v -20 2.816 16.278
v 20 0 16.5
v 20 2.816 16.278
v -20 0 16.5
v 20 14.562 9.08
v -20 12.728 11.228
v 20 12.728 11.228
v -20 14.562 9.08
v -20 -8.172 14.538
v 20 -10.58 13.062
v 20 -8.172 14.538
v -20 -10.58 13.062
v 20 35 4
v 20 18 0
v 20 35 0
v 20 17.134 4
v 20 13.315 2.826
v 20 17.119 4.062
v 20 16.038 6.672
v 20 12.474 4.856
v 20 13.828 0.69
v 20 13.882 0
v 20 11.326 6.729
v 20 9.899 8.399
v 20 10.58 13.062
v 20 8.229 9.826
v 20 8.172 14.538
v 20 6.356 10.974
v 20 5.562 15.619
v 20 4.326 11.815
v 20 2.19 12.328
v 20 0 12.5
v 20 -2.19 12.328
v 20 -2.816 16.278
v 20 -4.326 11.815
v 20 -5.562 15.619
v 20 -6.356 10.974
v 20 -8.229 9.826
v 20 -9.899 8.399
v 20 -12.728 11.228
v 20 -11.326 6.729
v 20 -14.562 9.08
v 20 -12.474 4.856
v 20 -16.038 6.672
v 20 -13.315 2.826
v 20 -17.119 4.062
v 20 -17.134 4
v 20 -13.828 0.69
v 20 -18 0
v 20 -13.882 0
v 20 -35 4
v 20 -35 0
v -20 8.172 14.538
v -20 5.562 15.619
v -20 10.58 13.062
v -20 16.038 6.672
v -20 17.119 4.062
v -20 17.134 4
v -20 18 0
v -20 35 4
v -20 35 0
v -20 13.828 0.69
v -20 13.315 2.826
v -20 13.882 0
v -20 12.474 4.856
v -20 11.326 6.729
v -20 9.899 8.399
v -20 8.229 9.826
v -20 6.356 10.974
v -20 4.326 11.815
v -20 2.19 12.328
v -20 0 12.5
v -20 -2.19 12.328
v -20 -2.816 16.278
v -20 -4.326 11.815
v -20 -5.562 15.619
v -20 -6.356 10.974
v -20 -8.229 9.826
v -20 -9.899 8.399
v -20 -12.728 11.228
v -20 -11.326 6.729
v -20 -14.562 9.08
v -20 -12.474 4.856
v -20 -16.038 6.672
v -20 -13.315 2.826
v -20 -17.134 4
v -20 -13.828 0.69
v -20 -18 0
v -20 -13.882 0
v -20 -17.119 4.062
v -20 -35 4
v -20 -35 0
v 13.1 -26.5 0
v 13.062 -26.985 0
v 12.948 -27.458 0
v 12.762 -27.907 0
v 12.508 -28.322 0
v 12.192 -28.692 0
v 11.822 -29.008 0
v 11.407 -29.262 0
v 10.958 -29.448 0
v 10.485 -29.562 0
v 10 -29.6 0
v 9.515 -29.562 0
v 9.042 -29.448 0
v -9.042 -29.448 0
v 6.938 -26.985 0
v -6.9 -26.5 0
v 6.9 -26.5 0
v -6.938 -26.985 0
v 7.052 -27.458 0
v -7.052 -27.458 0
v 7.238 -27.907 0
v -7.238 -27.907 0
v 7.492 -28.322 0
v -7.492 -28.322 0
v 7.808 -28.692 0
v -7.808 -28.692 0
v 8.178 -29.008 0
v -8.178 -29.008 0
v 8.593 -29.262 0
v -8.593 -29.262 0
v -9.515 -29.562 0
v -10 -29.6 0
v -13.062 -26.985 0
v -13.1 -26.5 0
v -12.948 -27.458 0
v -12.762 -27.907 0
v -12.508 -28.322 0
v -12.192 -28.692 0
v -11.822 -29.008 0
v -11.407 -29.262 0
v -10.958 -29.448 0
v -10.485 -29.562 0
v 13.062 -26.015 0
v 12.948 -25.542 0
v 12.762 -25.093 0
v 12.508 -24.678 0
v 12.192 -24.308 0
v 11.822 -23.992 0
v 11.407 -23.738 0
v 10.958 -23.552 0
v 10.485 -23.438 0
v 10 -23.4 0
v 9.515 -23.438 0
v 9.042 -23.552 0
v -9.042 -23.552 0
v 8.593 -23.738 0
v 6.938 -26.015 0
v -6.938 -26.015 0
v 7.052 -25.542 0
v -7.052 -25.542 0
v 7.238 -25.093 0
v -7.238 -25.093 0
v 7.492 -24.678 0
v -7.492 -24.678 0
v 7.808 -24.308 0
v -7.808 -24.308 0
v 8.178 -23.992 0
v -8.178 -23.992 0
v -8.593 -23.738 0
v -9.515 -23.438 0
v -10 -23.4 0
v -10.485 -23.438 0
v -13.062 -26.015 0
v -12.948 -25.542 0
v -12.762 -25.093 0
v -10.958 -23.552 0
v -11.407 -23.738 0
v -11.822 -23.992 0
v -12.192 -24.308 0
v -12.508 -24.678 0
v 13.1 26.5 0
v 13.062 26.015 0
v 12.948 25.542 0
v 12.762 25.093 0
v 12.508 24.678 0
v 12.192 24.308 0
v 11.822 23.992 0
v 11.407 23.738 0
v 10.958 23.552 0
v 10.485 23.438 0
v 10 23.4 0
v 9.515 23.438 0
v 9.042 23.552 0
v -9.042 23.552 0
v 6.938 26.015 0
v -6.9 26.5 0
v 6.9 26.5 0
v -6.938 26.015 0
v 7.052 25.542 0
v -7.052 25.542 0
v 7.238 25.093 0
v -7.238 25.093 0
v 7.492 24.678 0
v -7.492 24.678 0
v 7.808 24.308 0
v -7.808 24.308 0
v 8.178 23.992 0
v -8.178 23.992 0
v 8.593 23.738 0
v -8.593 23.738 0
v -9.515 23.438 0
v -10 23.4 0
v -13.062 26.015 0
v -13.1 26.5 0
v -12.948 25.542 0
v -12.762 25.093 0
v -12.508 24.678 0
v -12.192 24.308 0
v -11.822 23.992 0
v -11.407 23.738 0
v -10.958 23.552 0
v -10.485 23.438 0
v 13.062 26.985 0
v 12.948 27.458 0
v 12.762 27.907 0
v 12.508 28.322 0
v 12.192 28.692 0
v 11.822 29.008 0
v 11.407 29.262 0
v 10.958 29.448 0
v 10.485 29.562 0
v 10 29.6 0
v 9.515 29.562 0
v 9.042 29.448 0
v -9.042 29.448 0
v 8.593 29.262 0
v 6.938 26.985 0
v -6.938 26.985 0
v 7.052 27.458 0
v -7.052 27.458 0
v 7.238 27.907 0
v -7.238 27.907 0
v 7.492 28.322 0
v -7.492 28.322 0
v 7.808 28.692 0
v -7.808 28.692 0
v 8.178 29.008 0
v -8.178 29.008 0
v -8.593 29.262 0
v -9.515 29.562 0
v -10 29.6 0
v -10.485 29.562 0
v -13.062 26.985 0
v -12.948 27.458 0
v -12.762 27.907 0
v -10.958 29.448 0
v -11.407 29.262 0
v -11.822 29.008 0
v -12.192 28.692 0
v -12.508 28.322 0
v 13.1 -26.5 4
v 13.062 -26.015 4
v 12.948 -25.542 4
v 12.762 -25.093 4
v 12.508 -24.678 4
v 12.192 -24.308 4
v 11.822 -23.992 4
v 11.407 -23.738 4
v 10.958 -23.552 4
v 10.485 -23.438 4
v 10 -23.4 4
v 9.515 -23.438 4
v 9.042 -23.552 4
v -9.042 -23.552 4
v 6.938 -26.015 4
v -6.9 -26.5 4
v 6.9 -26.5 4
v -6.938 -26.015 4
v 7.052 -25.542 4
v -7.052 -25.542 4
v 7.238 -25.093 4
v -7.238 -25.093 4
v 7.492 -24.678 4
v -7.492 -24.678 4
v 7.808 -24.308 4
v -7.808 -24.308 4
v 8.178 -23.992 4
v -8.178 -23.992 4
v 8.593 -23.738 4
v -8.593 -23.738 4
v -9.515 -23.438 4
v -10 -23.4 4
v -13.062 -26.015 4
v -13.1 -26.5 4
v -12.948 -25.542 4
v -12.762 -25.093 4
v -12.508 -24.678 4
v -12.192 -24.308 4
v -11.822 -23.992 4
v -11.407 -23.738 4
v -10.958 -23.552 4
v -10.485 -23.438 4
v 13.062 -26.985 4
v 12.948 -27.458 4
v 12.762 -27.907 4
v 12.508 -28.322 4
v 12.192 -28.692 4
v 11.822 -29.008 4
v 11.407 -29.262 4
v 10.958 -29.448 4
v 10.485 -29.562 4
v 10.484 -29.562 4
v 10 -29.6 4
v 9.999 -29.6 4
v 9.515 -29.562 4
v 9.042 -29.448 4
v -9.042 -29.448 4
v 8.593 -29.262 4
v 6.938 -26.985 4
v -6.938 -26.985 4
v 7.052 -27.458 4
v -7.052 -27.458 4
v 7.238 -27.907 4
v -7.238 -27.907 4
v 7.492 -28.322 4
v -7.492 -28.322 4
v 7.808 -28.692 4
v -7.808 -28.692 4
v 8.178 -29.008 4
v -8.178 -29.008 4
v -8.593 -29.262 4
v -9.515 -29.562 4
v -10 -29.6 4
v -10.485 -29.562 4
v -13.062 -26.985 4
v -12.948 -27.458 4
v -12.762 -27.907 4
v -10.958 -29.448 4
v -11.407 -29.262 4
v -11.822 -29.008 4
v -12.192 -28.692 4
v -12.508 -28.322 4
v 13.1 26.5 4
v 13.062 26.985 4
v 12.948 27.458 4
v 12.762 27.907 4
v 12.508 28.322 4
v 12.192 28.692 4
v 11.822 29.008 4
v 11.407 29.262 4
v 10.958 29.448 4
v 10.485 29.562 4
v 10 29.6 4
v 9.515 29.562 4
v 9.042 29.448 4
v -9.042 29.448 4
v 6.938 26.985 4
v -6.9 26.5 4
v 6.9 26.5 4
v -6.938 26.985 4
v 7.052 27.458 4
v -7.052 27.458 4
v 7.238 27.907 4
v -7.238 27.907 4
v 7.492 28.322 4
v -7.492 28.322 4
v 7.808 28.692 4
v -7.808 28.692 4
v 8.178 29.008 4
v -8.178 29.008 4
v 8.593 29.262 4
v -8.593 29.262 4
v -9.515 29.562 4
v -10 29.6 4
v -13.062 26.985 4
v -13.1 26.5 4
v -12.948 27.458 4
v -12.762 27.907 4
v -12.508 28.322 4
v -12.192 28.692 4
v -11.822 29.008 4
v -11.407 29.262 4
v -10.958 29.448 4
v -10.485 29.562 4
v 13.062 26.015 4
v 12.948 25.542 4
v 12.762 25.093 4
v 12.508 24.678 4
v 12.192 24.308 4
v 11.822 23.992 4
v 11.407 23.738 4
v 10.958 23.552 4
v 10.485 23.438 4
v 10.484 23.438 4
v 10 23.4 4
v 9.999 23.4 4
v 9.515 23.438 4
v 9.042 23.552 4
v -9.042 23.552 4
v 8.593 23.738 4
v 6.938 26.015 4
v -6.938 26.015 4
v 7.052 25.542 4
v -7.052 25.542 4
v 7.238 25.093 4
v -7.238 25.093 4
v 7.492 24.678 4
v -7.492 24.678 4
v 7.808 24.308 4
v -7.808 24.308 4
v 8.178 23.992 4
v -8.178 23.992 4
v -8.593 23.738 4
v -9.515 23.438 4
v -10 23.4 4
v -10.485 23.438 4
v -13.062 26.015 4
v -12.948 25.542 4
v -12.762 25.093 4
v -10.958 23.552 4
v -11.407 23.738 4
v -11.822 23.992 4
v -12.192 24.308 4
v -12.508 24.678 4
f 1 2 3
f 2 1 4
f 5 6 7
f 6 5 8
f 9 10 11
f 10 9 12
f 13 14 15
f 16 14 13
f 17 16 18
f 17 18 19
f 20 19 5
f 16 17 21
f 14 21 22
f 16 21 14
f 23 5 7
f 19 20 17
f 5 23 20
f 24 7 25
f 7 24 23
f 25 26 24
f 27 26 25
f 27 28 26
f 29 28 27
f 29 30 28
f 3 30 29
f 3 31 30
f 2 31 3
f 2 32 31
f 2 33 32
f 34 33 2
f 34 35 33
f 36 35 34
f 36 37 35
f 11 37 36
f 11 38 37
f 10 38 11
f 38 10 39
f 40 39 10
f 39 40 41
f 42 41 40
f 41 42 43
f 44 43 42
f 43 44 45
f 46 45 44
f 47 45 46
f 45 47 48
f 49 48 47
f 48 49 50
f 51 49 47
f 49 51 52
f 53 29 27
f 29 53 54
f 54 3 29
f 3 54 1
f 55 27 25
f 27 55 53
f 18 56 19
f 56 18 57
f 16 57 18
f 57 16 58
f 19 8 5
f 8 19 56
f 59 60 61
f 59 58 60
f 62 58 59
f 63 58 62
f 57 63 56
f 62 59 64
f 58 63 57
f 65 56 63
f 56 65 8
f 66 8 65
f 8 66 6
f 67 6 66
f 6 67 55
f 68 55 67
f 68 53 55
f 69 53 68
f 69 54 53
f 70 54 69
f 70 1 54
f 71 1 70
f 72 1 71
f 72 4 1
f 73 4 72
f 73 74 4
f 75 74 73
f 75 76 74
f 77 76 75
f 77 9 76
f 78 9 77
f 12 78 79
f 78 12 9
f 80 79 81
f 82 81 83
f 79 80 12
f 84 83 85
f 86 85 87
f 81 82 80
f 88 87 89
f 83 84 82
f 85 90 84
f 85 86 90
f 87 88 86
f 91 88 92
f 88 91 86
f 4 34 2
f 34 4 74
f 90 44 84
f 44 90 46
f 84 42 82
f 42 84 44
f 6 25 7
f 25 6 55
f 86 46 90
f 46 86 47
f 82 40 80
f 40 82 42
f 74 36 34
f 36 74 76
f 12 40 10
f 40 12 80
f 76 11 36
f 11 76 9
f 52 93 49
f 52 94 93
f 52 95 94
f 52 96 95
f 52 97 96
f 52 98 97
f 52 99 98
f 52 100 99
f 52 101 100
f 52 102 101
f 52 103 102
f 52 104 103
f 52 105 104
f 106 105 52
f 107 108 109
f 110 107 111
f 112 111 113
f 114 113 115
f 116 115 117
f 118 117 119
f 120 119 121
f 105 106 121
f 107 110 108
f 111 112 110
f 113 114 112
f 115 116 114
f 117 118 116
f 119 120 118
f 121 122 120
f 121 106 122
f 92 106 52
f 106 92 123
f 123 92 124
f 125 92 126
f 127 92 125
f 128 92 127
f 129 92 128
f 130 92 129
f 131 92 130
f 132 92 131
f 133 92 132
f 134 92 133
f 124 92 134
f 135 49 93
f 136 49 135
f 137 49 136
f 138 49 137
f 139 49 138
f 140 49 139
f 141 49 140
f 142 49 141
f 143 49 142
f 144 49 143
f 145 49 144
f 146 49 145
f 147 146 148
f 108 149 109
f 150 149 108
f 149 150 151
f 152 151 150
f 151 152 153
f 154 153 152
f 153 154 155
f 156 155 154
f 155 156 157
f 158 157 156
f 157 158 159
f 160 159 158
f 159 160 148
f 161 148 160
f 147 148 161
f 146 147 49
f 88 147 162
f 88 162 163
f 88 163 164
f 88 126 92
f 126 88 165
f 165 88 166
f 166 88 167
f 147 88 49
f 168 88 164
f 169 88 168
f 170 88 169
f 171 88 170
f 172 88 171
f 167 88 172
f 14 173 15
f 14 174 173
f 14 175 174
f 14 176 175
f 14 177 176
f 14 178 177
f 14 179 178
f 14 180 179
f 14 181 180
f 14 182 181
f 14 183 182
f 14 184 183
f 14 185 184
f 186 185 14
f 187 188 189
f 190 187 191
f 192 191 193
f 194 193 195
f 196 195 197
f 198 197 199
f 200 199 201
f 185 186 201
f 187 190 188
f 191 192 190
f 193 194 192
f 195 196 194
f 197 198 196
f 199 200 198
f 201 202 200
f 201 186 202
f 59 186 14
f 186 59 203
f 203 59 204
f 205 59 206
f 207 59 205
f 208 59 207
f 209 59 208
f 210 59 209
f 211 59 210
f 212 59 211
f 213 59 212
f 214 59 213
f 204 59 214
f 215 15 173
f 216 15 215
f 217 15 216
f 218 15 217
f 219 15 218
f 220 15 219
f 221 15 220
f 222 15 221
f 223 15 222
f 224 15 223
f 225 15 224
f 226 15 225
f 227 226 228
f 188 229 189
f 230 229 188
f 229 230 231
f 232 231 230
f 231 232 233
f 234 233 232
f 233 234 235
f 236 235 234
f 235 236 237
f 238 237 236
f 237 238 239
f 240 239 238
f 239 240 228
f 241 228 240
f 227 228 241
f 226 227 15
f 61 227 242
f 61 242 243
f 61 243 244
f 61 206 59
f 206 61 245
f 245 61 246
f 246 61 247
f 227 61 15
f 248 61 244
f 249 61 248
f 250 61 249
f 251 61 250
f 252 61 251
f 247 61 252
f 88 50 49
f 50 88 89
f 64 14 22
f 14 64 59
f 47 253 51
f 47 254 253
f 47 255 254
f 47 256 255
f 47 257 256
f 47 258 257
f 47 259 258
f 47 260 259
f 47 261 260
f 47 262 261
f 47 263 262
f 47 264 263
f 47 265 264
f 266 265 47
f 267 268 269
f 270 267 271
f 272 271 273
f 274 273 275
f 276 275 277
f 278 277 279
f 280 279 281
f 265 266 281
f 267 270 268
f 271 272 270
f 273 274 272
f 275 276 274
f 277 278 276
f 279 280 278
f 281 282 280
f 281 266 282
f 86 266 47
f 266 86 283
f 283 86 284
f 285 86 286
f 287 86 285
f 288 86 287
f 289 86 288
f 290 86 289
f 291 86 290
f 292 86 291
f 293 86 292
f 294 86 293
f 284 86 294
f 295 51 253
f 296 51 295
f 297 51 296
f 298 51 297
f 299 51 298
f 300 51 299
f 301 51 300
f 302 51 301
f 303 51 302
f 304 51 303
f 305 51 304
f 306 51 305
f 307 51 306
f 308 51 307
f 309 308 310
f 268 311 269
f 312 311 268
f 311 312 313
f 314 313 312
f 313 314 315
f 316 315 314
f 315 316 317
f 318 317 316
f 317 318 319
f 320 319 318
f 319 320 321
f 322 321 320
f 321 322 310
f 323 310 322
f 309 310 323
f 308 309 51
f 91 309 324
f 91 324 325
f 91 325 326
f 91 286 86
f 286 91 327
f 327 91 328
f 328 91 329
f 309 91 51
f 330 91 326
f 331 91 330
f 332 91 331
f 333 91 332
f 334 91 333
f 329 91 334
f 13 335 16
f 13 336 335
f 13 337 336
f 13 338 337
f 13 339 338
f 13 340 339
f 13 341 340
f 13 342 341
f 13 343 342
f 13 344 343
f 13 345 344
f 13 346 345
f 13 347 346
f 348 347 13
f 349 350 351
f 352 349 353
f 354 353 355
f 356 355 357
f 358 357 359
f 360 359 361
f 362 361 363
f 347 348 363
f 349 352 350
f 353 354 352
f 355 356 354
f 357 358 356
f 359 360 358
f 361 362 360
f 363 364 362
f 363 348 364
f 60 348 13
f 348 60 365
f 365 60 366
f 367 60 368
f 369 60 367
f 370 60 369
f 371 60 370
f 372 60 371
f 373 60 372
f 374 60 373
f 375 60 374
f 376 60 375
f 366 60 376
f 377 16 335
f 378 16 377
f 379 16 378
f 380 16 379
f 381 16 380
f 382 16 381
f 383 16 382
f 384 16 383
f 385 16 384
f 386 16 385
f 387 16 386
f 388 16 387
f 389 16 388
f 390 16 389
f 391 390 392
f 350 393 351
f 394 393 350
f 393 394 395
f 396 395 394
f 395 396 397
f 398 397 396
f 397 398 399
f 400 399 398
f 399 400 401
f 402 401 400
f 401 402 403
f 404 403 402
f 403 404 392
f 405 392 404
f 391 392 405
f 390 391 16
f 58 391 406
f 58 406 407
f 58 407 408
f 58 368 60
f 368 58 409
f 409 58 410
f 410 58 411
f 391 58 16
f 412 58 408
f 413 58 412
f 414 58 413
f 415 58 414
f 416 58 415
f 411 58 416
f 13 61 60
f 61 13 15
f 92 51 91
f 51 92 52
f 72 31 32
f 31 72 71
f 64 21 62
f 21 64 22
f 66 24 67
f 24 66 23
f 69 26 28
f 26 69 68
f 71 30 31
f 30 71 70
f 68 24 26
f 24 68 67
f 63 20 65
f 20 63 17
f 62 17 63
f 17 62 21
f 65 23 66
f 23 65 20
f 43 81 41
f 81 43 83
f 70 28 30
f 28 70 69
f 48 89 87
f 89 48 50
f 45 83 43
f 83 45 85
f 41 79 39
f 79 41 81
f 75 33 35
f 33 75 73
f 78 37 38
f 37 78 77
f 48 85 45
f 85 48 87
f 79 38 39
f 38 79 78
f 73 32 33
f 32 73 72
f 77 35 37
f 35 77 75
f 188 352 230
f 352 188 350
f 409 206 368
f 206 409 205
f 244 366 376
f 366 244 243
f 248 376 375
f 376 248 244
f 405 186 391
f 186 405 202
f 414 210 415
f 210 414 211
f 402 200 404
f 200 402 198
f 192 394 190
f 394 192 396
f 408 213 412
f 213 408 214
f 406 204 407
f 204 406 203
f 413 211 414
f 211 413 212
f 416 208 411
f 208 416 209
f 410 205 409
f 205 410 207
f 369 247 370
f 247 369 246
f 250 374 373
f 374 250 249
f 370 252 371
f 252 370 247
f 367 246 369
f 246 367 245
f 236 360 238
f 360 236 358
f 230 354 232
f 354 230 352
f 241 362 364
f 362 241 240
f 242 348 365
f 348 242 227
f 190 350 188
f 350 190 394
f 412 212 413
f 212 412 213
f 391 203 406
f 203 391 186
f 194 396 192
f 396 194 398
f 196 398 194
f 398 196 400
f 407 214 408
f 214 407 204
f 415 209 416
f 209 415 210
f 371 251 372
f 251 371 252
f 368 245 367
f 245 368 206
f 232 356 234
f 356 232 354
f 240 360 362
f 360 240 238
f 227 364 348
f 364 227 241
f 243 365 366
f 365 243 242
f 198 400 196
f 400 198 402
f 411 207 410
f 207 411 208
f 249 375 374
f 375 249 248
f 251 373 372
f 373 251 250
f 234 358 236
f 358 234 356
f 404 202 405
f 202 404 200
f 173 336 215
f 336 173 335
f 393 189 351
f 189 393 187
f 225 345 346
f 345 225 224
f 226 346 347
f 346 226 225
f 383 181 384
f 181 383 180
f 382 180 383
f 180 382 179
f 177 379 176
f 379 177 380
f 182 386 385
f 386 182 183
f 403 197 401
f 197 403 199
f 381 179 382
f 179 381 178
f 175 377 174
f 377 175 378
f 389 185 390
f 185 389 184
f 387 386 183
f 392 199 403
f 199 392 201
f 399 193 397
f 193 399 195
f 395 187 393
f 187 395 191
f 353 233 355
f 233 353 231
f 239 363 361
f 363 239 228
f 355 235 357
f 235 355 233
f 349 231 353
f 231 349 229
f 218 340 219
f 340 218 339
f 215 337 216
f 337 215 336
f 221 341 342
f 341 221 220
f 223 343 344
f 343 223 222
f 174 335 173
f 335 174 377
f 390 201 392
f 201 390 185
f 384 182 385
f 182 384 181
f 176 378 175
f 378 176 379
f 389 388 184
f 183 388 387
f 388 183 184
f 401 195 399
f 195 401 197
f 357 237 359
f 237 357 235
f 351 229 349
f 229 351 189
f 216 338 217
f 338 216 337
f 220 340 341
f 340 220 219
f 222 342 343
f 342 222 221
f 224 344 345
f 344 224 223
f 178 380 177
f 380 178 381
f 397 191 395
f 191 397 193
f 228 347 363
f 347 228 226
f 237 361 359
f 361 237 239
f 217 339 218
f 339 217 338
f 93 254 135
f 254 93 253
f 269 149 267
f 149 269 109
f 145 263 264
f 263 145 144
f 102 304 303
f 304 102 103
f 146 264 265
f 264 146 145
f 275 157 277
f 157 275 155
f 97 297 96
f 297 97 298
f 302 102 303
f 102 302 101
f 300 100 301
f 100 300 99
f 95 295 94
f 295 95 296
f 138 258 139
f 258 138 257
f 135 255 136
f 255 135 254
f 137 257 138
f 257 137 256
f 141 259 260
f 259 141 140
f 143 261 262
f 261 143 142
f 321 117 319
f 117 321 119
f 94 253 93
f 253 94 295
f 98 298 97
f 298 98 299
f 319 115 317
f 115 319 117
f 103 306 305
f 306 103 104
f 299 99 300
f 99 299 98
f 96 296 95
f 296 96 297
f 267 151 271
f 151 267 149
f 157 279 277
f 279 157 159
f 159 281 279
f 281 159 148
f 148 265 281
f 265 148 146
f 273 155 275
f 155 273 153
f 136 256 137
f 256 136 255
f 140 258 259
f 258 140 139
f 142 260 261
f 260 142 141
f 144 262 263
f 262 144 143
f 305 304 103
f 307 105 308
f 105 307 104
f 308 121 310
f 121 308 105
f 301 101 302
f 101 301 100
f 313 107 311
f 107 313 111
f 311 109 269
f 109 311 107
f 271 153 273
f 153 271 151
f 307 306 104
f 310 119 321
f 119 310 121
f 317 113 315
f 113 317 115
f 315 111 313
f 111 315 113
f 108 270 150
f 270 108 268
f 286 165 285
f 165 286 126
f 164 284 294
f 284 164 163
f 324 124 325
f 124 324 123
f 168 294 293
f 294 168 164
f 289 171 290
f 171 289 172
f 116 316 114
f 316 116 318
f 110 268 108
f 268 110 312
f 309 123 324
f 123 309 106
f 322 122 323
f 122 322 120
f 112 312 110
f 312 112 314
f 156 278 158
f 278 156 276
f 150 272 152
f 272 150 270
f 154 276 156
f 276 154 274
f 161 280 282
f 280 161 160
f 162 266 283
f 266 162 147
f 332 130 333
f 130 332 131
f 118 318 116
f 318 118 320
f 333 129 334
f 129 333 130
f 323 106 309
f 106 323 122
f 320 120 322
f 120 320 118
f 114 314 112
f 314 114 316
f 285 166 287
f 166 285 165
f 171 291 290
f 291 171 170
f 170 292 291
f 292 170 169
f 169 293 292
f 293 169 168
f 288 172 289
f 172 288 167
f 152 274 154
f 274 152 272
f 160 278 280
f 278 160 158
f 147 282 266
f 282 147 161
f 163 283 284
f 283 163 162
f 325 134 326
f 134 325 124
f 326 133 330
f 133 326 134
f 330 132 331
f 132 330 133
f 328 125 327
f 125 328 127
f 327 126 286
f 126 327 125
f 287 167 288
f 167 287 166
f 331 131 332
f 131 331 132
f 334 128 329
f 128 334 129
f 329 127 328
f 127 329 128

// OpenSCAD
// file: ../SRC/AWSCREEN01A_D06.scad
$fn=40; // model faces resolution.
include <../configuration.scad>



module AWSCREEN01A_D06(D02_sila_materialu,D02_vyska_uchytky,D02_prumer_obruby,D02_delka_celeho_uchytu,D02_dotahova_vzdalenost,D02_prumer_uchytneho_sroubu){
	
		difference(){
			union(){
                
                //základní válec
                    cylinder(h=D02_vyska_uchytky,r=(D02_prumer_obruby+2*D02_sila_materialu)/2,center=true);
				//úchytové plošky		
					translate([D02_dotahova_vzdalenost+D02_sila_materialu/2,0,0]){cube([D02_sila_materialu,D02_delka_celeho_uchytu,D02_vyska_uchytky],center=true);}
					
				}
                //válec na odečet
           cylinder(h=D02_vyska_uchytky+0.01,r=D02_prumer_obruby/2,center=true);     
			
            
            //kvádr na odecet
			translate([D02_dotahova_vzdalenost-(D02_prumer_obruby+2*D02_sila_materialu)/2,0,0]){cube([D02_prumer_obruby+2*D02_sila_materialu,D02_prumer_obruby+2*D02_sila_materialu,D02_vyska_uchytky+0.01],center=true);}
		
	//otvory na sroub
		translate([D02_dotahova_vzdalenost,(D02_delka_celeho_uchytu/2-D02_prumer_obruby/2-D02_sila_materialu)/2+D02_prumer_obruby/2+D02_sila_materialu,D02_vyska_uchytky/4]){rotate([0,90,0]){cylinder(h=D02_sila_materialu+0.01,r=D02_prumer_uchytneho_sroubu/2);}}
        
        		translate([D02_dotahova_vzdalenost,(D02_delka_celeho_uchytu/2-D02_prumer_obruby/2-D02_sila_materialu)/2+D02_prumer_obruby/2+D02_sila_materialu,-D02_vyska_uchytky/4]){rotate([0,90,0]){cylinder(h=D02_sila_materialu+0.01,r=D02_prumer_uchytneho_sroubu/2);}}
        
	translate([D02_dotahova_vzdalenost,-((D02_delka_celeho_uchytu/2-D02_prumer_obruby/2-D02_sila_materialu)/2+D02_prumer_obruby/2+D02_sila_materialu),-D02_vyska_uchytky/4]){rotate([0,90,0]){cylinder(h=D02_sila_materialu+0.01,r=D02_prumer_uchytneho_sroubu/2);}}

translate([D02_dotahova_vzdalenost,-((D02_delka_celeho_uchytu/2-D02_prumer_obruby/2-D02_sila_materialu)/2+D02_prumer_obruby/2+D02_sila_materialu),D02_vyska_uchytky/4]){rotate([0,90,0]){cylinder(h=D02_sila_materialu+0.01,r=D02_prumer_uchytneho_sroubu/2);}}	
		
	
}
}
// file: ../configuration.scad
$fn=40; // model faces resolution.

//OBECNE PARAMETRY 
//----------------------------------------------------------------
//----------------------------------------------------------------


//AWSCREEN01A_D03 -stredni díl
D03_vyska_zavitu=5;
D03_tolerance_zavitu=0.2; //tolerance s poloměru
D03_material_za_zavitem=2;
D03_polomer_zavitu=20;
D03_polomer_stitu=40;
D03_tloustka_materialu=2;
D03_vyska_stitu=20;
D03_pocet_vyztuh=3;
screen_bevel = 20;
PI=3.141592;

//AWSCREEN01A_D04
D04_vyska_na_elektroniku=10;
D04_vyska_zavitu=15;
D04_vyska_zavitu_pro_drzak_elektorniky=5;

//AWSCREEN01A_D05 //uchyt velky
D01_material_pod_zavitem=10;
D01_material_za_zavitem=5;
D01_material_pred_zavitem=3;
D01_delka_tyce=40;
D01_sirka_tyce=20;
S01_vyska_komponentu_na_lozisko=D04_vyska_zavitu-D04_vyska_zavitu_pro_drzak_elektorniky;
S01_prumer_zavitu=2*D03_polomer_zavitu;


//AWSCREEN01A_D06 //uchyt na sloup
D02_sila_materialu=4;
D02_vyska_uchytky=40;
D02_prumer_obruby=28;
D02_delka_celeho_uchytu=70;
D02_dotahova_vzdalenost=1.5;
D02_prumer_uchytneho_sroubu=6.2;
// main file
$fn=100; // model faces resolution.
include <../configuration.scad>
use <../SRC/AWSCREEN01A_D06.scad>

rotate([0, -90, 0])
translate([-D02_dotahova_vzdalenost,0,0])

AWSCREEN01A_D06(D02_sila_materialu,
D02_vyska_uchytky,
D02_prumer_obruby,
D02_delka_celeho_uchytu,
D02_dotahova_vzdalenost,
D02_prumer_uchytneho_sroubu);

            
